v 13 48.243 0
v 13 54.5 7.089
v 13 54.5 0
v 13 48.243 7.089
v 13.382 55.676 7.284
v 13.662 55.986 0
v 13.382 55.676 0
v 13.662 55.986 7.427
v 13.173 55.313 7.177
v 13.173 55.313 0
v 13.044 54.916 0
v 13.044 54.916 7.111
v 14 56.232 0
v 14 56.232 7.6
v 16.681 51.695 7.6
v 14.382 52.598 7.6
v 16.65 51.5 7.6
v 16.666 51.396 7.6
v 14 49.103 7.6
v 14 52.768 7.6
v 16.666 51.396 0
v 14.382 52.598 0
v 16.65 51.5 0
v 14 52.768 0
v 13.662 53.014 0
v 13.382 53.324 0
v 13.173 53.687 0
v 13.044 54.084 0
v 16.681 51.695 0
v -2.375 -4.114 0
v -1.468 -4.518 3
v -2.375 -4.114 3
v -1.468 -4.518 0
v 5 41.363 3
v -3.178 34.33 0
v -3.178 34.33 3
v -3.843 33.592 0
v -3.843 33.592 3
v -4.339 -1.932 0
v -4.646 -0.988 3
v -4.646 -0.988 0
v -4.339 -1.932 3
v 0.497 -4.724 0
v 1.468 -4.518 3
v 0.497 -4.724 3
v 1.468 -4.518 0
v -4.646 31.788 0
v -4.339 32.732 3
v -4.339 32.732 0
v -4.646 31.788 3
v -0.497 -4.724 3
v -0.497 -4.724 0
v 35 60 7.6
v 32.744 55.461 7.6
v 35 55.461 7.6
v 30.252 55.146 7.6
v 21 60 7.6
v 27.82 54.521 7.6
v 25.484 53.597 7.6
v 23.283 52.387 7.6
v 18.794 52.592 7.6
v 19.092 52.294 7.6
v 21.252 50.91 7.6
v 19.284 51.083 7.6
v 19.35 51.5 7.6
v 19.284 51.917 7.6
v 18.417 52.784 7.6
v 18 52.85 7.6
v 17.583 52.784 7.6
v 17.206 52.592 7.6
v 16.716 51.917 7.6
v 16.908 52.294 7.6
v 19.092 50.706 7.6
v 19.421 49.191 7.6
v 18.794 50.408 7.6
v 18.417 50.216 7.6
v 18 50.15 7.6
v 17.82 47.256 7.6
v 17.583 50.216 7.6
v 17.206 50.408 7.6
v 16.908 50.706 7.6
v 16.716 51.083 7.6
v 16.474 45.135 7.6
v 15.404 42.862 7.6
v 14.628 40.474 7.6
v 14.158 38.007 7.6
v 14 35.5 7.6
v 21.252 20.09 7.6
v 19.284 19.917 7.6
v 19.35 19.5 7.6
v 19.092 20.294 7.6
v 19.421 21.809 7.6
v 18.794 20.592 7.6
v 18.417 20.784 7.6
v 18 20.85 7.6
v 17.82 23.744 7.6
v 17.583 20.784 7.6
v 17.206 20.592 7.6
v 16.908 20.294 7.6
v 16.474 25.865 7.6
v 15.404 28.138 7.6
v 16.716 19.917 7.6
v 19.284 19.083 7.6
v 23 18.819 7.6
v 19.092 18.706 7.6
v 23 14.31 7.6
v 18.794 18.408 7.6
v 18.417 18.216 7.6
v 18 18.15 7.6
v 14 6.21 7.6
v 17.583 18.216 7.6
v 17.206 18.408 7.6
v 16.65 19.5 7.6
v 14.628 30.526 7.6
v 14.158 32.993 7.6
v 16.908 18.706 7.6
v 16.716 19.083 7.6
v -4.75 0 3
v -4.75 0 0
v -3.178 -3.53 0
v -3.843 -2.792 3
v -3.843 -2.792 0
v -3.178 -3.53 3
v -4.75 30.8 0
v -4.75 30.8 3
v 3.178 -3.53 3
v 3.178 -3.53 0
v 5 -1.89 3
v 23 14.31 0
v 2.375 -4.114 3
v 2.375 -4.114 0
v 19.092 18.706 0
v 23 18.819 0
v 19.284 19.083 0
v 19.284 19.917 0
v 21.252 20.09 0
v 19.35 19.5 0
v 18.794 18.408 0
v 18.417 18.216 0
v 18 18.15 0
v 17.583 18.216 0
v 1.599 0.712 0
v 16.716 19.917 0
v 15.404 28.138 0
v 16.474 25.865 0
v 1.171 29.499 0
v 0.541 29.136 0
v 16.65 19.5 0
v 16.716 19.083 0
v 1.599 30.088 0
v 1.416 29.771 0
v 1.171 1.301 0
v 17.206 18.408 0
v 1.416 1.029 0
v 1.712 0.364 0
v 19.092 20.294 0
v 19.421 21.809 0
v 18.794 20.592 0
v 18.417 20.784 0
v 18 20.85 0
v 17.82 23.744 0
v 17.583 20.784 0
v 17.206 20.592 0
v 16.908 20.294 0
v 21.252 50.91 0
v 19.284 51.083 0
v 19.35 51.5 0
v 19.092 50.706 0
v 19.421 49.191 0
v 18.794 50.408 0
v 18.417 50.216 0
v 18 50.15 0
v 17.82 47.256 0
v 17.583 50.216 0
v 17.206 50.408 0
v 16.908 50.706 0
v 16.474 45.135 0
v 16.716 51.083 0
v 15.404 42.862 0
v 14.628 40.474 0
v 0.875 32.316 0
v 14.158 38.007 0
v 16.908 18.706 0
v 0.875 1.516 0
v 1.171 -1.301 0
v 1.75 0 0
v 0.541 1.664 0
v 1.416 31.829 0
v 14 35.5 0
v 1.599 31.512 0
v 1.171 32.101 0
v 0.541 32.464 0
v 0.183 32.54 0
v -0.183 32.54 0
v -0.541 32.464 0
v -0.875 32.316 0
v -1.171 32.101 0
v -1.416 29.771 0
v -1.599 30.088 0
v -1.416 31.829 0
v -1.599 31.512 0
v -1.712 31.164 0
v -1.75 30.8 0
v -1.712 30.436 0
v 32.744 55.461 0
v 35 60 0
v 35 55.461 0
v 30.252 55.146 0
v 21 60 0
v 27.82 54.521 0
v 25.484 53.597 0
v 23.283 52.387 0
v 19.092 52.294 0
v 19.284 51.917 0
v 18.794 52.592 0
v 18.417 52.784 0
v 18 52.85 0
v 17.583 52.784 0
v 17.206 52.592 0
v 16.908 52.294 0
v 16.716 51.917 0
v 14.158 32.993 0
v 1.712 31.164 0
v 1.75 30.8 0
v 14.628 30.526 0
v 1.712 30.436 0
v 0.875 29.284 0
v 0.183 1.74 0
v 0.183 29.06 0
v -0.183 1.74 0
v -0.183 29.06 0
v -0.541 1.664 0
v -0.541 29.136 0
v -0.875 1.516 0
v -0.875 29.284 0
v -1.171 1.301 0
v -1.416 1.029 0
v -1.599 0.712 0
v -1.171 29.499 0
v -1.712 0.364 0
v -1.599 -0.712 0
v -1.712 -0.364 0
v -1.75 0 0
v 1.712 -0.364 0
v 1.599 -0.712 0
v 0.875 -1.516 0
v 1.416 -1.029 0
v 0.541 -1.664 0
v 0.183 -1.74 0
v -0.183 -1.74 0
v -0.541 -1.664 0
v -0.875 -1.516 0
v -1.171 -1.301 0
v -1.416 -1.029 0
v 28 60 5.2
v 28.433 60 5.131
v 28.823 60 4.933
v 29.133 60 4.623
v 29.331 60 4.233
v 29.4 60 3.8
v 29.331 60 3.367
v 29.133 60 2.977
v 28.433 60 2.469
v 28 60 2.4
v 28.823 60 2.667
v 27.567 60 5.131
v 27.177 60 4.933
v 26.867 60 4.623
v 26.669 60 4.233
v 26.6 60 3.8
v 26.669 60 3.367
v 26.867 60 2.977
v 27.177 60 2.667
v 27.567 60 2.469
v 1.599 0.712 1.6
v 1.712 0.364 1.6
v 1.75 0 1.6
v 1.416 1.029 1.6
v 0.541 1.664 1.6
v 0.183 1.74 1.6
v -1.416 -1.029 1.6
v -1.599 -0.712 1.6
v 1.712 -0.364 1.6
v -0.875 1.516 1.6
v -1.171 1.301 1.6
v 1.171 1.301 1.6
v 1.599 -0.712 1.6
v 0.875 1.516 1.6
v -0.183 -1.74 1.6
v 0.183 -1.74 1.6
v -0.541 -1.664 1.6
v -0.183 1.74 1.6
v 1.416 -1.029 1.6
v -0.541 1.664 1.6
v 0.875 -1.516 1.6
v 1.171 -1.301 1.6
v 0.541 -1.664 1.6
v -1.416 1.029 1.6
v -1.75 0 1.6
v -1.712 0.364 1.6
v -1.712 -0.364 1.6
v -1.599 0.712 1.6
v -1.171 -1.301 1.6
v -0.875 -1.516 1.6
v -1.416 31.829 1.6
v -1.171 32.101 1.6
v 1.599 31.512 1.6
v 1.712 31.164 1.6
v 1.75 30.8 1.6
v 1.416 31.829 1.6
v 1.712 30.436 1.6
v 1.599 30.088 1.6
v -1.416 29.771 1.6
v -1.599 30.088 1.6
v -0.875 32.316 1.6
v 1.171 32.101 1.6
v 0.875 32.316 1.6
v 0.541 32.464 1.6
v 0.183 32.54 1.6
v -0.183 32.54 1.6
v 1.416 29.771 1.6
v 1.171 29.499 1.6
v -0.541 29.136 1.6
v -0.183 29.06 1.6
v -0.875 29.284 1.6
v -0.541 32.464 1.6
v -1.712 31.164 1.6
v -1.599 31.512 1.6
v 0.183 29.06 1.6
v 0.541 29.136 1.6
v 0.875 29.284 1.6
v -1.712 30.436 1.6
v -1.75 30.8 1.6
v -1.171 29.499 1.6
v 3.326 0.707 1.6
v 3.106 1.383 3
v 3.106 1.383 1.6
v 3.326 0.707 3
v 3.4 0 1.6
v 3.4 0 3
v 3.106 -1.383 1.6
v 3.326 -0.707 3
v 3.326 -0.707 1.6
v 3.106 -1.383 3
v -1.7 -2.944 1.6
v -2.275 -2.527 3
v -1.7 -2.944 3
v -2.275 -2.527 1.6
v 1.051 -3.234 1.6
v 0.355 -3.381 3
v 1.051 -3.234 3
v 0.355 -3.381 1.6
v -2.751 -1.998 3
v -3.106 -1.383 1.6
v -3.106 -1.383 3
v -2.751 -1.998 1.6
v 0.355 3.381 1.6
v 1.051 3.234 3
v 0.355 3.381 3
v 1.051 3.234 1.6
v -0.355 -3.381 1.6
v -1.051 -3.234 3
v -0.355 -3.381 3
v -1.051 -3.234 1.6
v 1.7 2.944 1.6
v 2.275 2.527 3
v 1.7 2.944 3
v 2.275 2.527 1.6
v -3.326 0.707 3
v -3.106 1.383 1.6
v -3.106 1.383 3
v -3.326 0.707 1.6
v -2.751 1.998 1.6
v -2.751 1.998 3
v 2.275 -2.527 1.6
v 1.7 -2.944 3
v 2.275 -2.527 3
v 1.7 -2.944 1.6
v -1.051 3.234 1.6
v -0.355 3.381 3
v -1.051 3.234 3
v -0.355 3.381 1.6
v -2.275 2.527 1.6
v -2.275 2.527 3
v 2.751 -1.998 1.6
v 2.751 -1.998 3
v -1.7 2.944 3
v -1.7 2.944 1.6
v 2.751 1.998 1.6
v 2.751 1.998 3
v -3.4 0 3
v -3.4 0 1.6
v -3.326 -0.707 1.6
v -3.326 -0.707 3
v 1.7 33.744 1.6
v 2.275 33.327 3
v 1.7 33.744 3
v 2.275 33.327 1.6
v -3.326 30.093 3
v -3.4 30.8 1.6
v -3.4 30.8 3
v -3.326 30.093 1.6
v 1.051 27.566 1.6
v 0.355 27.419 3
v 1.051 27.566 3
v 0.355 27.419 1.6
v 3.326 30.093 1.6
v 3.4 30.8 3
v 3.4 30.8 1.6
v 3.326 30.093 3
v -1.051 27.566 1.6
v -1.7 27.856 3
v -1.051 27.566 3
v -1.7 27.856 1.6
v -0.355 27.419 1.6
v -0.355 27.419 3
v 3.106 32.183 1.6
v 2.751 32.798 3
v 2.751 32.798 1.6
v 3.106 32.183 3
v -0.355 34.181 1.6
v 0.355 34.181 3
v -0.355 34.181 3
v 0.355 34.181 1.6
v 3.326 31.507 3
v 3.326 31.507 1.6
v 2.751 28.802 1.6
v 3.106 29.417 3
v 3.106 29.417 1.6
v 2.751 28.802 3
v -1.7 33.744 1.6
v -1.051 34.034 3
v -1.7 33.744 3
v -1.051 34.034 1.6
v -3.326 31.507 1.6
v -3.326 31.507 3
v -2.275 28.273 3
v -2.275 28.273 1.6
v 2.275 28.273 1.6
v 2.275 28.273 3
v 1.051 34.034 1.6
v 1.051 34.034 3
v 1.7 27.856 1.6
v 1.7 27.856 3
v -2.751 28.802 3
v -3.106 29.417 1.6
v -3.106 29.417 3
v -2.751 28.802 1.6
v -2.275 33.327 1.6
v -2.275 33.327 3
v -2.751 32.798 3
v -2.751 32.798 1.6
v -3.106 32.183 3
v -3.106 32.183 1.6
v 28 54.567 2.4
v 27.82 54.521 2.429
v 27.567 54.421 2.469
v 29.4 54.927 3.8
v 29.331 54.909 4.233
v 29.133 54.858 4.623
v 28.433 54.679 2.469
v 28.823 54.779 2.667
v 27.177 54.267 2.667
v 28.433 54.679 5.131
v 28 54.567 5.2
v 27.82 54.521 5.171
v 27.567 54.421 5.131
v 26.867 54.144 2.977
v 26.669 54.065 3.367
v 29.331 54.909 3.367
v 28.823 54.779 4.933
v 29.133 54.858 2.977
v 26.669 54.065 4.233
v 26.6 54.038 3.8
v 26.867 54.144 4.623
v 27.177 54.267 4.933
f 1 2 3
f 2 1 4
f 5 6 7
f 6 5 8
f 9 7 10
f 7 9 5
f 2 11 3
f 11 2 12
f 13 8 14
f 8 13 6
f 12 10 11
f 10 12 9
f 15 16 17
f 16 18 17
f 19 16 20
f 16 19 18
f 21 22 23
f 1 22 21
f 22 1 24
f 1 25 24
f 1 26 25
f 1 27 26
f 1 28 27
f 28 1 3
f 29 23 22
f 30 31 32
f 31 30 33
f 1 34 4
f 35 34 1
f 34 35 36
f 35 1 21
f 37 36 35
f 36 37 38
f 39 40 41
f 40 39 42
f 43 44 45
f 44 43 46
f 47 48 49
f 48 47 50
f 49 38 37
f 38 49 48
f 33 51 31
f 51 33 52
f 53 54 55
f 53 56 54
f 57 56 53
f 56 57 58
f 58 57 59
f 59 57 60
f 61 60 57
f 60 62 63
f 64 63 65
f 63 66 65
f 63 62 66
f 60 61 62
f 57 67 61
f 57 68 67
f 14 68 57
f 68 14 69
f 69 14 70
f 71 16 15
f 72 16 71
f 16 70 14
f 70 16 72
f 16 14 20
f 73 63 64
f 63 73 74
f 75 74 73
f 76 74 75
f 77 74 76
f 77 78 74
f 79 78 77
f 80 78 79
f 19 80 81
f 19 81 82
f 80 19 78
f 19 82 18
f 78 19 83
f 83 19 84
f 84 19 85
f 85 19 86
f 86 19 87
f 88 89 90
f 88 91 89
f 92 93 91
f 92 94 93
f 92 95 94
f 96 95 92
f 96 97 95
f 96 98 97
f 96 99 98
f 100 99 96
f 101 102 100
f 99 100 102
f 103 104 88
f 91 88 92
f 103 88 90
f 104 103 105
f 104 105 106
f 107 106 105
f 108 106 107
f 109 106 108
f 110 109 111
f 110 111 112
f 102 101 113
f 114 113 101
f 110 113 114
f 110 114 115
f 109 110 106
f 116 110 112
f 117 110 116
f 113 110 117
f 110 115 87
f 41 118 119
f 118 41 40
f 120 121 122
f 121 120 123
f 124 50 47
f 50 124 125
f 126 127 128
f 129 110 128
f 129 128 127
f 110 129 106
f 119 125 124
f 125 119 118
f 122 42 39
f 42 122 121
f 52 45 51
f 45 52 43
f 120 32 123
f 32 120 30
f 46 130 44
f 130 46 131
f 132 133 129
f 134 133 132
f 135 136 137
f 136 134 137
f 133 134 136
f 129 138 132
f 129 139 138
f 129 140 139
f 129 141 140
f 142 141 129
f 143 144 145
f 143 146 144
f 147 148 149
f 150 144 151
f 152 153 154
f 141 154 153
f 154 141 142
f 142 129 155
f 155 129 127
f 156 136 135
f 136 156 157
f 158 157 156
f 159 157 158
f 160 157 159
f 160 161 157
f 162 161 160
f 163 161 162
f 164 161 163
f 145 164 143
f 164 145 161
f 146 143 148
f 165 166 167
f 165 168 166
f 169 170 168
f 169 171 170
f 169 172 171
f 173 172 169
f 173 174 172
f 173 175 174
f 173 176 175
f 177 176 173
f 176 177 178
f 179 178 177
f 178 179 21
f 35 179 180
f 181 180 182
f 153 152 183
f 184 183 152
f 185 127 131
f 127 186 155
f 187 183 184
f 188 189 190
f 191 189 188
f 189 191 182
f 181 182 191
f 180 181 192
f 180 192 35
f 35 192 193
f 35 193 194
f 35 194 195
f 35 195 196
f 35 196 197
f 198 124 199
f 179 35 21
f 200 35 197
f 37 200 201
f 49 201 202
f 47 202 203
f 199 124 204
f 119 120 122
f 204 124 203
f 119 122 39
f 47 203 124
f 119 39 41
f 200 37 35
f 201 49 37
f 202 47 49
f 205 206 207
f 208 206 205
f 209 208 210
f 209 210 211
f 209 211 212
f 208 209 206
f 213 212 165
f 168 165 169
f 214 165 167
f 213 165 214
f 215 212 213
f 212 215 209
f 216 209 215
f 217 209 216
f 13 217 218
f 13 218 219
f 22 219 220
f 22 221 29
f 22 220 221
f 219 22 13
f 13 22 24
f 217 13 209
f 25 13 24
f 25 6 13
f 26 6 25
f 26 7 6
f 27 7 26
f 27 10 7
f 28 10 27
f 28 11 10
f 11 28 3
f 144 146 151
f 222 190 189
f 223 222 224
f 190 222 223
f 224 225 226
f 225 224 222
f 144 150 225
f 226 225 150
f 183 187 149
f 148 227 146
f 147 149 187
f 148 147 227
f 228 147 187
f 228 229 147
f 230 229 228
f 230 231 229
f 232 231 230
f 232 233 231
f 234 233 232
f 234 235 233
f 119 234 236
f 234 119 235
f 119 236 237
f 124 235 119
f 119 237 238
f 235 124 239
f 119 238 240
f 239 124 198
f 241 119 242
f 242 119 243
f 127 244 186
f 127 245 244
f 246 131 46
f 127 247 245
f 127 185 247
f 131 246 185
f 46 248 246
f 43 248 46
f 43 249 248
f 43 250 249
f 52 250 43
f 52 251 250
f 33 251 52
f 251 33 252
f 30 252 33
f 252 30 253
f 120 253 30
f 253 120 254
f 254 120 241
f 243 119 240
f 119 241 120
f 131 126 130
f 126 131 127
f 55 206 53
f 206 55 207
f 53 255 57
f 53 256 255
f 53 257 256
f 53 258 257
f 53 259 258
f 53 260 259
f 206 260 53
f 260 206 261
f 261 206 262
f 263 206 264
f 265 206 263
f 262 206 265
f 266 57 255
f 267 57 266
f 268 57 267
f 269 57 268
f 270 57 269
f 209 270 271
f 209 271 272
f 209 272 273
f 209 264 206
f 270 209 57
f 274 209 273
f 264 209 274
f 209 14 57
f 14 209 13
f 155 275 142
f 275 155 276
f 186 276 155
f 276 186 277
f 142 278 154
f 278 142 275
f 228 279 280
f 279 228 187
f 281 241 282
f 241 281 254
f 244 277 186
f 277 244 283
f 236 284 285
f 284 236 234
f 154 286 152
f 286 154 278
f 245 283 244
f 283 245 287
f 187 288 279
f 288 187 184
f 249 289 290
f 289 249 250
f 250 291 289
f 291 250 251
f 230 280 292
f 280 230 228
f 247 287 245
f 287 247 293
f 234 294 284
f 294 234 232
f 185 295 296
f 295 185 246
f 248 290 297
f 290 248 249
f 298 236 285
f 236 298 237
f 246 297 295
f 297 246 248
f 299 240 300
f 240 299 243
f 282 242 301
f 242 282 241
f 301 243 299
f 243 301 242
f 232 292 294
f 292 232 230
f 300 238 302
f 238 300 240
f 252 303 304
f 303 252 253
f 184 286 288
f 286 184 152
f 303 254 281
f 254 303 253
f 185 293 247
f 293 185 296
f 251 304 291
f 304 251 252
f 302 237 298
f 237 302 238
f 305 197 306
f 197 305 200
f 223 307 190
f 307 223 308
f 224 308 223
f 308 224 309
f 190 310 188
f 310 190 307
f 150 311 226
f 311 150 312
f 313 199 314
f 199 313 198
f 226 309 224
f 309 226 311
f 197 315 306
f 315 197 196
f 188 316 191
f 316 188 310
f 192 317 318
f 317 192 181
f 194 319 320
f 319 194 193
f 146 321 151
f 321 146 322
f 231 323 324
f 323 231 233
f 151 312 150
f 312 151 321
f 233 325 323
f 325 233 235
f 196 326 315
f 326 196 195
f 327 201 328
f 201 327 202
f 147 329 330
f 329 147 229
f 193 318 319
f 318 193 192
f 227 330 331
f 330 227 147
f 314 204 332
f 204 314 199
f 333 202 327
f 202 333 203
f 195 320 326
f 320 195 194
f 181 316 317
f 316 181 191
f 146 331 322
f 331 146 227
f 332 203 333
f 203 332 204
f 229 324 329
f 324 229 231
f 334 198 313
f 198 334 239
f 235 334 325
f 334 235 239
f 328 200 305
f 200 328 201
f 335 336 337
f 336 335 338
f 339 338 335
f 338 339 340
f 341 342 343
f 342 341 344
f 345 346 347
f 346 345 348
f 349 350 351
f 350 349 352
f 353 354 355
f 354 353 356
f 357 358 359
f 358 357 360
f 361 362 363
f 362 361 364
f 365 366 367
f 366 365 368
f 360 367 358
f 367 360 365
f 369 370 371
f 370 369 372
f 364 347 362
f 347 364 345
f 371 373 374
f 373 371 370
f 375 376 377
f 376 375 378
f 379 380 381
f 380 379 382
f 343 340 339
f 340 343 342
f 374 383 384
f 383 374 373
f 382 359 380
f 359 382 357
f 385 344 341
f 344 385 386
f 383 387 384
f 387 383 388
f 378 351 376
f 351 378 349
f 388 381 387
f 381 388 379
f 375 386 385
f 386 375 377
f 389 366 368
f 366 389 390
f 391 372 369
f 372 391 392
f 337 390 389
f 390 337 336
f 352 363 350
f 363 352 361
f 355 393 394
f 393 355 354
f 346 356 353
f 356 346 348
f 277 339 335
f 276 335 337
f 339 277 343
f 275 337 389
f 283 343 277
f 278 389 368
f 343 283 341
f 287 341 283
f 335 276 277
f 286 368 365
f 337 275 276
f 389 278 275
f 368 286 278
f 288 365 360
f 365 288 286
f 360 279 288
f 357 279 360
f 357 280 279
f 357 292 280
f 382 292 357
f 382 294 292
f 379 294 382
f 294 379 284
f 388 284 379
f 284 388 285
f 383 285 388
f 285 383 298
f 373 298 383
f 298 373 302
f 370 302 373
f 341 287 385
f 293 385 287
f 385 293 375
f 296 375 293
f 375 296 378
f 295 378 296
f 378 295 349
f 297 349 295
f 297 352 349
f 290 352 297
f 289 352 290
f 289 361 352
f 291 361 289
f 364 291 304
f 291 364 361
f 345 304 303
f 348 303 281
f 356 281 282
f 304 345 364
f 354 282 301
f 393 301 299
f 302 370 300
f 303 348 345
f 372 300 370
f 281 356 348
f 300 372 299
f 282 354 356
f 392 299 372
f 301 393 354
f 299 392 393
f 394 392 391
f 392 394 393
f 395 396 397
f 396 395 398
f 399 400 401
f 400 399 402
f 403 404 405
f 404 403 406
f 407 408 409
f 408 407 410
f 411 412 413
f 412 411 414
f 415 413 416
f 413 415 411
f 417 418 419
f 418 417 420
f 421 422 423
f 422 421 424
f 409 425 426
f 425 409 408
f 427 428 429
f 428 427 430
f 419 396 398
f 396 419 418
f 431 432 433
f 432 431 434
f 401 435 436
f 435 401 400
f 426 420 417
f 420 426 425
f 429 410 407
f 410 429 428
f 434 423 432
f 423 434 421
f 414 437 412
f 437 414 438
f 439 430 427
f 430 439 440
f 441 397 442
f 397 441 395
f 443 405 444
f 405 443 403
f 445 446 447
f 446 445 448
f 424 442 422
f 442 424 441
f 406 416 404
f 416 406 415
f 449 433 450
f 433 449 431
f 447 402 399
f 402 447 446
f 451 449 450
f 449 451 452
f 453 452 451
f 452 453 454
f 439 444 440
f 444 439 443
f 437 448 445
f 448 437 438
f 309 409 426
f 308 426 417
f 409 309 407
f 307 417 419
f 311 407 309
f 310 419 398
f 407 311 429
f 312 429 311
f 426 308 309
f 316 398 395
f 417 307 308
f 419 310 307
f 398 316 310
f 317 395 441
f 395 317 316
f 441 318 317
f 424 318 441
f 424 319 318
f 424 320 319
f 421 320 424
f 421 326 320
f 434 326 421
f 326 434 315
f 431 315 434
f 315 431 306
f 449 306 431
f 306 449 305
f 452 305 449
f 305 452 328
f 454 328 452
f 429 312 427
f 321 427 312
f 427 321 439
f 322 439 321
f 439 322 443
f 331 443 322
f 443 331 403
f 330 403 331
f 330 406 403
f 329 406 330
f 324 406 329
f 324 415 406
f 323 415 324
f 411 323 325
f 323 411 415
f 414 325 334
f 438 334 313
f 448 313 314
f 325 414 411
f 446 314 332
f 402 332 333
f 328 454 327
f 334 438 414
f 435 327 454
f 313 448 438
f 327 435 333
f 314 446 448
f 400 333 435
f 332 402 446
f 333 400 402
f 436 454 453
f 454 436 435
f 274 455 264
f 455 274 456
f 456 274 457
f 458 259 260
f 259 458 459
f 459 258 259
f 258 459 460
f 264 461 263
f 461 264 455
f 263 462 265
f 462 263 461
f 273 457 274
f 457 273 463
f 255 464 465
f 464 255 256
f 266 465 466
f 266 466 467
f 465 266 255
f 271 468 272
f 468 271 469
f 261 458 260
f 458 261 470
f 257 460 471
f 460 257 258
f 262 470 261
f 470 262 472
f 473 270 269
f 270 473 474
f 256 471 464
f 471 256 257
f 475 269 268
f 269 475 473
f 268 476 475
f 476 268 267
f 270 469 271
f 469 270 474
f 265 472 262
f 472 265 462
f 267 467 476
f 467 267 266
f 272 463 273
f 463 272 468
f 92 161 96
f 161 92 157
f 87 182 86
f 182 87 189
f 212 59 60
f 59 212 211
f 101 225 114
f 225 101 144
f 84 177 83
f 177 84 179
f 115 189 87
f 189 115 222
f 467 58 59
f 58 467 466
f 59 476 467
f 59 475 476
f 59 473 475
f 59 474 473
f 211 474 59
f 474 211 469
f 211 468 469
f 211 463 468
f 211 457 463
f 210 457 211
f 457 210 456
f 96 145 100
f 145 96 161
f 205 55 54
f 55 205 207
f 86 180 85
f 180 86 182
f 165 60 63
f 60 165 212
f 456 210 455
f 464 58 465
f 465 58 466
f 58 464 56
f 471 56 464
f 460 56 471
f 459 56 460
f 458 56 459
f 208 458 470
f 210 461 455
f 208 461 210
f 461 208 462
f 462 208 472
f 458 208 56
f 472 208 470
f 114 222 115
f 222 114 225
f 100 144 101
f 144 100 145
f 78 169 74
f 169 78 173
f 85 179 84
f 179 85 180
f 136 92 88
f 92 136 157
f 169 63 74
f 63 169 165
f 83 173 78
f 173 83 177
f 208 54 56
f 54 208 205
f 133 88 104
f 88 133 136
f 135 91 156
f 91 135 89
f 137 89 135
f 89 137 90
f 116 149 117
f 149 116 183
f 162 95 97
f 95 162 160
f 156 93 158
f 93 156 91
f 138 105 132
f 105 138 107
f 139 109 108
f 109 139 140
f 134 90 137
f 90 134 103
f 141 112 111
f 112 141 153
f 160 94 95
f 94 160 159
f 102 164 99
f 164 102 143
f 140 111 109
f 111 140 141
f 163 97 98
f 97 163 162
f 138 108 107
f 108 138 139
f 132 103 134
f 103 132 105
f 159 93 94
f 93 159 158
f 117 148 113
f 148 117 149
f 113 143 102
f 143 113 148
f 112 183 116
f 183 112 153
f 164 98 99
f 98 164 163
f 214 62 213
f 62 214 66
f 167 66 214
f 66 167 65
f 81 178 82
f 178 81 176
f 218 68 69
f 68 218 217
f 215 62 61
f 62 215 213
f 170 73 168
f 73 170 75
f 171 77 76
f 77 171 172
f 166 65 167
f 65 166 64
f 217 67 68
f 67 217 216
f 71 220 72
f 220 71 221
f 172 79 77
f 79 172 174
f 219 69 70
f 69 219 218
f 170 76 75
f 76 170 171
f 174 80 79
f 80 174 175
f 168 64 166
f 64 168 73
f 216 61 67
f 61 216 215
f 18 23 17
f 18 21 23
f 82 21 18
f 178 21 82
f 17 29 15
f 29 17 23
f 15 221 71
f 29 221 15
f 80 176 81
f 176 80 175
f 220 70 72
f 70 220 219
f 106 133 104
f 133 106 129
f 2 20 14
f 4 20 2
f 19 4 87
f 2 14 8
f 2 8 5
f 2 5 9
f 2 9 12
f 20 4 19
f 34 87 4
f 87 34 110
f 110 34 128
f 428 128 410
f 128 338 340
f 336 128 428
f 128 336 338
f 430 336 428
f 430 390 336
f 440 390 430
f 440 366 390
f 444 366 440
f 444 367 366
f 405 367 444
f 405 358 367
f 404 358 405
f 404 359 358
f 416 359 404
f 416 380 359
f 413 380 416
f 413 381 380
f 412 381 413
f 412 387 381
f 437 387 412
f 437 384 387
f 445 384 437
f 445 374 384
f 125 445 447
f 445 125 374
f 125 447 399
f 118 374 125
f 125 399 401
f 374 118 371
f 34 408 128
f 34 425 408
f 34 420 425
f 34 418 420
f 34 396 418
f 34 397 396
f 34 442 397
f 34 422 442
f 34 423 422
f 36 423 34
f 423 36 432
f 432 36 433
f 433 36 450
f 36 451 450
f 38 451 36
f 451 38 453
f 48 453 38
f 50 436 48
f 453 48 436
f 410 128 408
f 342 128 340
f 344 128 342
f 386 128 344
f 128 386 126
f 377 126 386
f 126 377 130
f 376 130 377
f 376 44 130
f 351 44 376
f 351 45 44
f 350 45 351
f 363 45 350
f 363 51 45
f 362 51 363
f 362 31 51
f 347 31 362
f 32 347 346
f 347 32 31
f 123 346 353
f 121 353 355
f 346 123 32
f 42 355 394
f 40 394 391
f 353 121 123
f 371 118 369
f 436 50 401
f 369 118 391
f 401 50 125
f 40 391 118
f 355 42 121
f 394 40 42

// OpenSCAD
// file: ../Dollo/NEW_long_ties/globals.scad
/*
Most things in this file is represented as one millimeter, so keep that in mind while changing things.
Some of the setting are not mm but at variables that you can set, such as 2*x=2x and you are setting what x is.
I will try to specify when things are variables and not exact measurements.
*/

// printer slop
slop = 0.15;

obj_leg = 30;
leg_length = 5.5;
small_number = 0.001;
metal_core_rode_global = 5;


///////////////// number of holes /////////////////////
z_hole_number = 8;
other_holes = 8;

///////////////// Pins /////////////////////

//pins that poke out
ball_size = 10;
pin_height = 20;
pin_diameter = 6;


//holes
hole_ball_size = ball_size;
hole_pin_height = pin_height;
hole_pin_diameter = pin_diameter;

///////////////// Z THINGS /////////////////////

berring_slot_width = 7.5;
berring_slot_depth = 6.5;
metal_core_rode = 5;

///////////////// X THINGS /////////////////////

//male dove tails
male_dove_max_width=8;
male_dove_min_width=5;
male_dove_depth=5;
male_dove_height=obj_leg/2;

function scaled_male_dove_max_width() = male_dove_max_width - slop;
function scaled_male_dove_min_width() = male_dove_min_width - slop;
function scaled_male_dove_depth() = male_dove_depth - slop;

//female dove tails, this is found on the y mounts
girl_max_width=11;
girl_min_width=5;
girl_depth=5;
girl_height=obj_leg;


///////////////// Y THINGS /////////////////////
/*
The Y is so normal that all of those global variables at the top should change all of the setting in it, this section is set her incase there are variables set in the future development of this project.
*/

// stepper
motor_side_length = 43.2;
motor_bolt_hole_distance = 31;
motor_center_hole = 23;
motor_shaft_dia = 5;
motor_shaft_hole_dia = 5+2*slop;

// bolts etc.
bolt_hole_dia = 3+2*slop;
bolt_head_hole_dia = 5.8;

m4_bolt_hole_dia = 4+2*slop;
m4_bolt_head_hole_dia = 6.8+2*slop;


m3_nut_side = 5.65;
m3_nut_height = 2.3;
m4_nut_side = 6.85;
m4_nut_height = 3.1;

// threaded rod
lifter_rod_diam = 9.86;
hole_threaded_rod = lifter_rod_diam+2*slop;

// for the extensions
metal_rod_size = 9;
// file: common.scad
atx_psu_width = 150;
atx_psu_height = 86;

card_spacing = 20.32;

fan_connector_width = 6.1;
fan_connector_length = 7.9;

fan_92mm = 92;
fan_92mm_bolt_offset = 82.5/2;

module mock_mobo() {
    $fn=50;
    difference() {
        cube([304.8, 243.84, 2]);
        translate([6.35+281.94,10.16,0]) cylinder(d=4, h=3);
        translate([6.35+281.94,10.16+154.94,0]) cylinder(d=4, h=3);
        translate([6.35+281.94,10.16+227.33,0]) cylinder(d=4, h=3);

        translate([6.35+157.48+45.72,10,0]) cylinder(d=4, h=3);

        translate([6.35+157.48,10.16,0]) cylinder(d=4, h=3);
        translate([6.35+157.48,10.16+154.94,0]) cylinder(d=4, h=3);
        translate([6.35+157.48,10.16+227.33,0]) cylinder(d=4, h=3);

        translate([6.35,22.86,0]) cylinder(d=4, h=3);
        translate([6.35,10.16+154.94,0]) cylinder(d=4, h=3);
        translate([6.35,10.16+227.33,0]) cylinder(d=4, h=3);
    }
}

module mock_card() {
    $fn=50;
    cube([200, 2, 106.7]);
    translate([-12.3, -15.8+22-19.4, -18.8+119.2]) difference() {
        cube([12.3,19.4,1]);
        translate([6.3, 19.4-1-4.8/2,0]) hull() {
            cylinder(d=4.8,h=2, $fn=40);
            translate([0,5,0]) cylinder(d=4.8,h=2, $fn=40);
        }
    }
    difference() {
        translate([-1,-15.8, -18.8]) cube([1,22, 120.2]);
        translate([-1.3,-15.8, -18.8]) cube([2,(18.8-10.6)/2, 11.2]);
        translate([-1.3,-15.8+10.6+(18.8-10.6)/2, -18.8]) cube([2,(18.8-10.6)/2, 11.2]);
        translate([-1.3,-15.8+18.8, -18.8]) cube([2,5, 116.2]);
        translate([-1.3,-15.8, -18.8+116.2]) cube([2,22-18.8, 5]);
    }
    
}

module mock_mobo_card() {
    
    mock_mobo();
    translate([304.8-142,-1.2,18.8-10.4]) rotate([0,0,90]) mock_card();
    translate([304.8-142+card_spacing,-1.2,18.8-10.4]) rotate([0,0,90]) mock_card();
    translate([304.8-142+2*card_spacing,-1.2,18.8-10.4]) rotate([0,0,90]) mock_card();
    translate([304.8-142+3*card_spacing,-1.2,18.8-10.4]) rotate([0,0,90]) mock_card();
    translate([304.8-142+4*card_spacing,-1.2,18.8-10.4]) rotate([0,0,90]) mock_card();
    translate([304.8-142+5*card_spacing,-1.2,18.8-10.4]) rotate([0,0,90]) mock_card();
    translate([304.8-142+6*card_spacing,-1.2,18.8-10.4]) rotate([0,0,90]) mock_card();
}

module mock_ssd() {
    difference() {
        cube([70, 100, 7.1]);
        translate([9.4,0,6.5]) cube([41.4,7,1]);
        translate([10.4,0,0]) cube([39.4,7,2]);
    }
    translate([0,13.6,3]) rotate([0,-90,0]) cylinder(d=2.5, h=5, $fn=30);
    translate([0,100-9.2,3]) rotate([0,-90,0]) cylinder(d=2.5, h=5, $fn=30);

    translate([70+5,13.6,3]) rotate([0,-90,0]) cylinder(d=2.5, h=5, $fn=30);
    translate([70+5,100-9.2,3]) rotate([0,-90,0]) cylinder(d=2.5, h=5, $fn=30);

}


hd_width = 102;
hd_height = 26.1;

screw_dia = 3.6;

module mock_hd() {
    color("white") difference() {
        cube([hd_width,146,26]);
        translate([0,28.3,6.40]) rotate([0,90,0]) cylinder(d=screw_dia, h=5, $fn=30);
        translate([0,69.8,6.40]) rotate([0,90,0]) cylinder(d=screw_dia, h=5, $fn=30);
        translate([0,129.8,6.40]) rotate([0,90,0]) cylinder(d=screw_dia, h=5, $fn=30);

        translate([hd_width-5,28.3,6.40]) rotate([0,90,0]) cylinder(d=screw_dia, h=5, $fn=30);
        translate([hd_width-5,69.8,6.40]) rotate([0,90,0]) cylinder(d=screw_dia, h=5, $fn=30);
        translate([hd_width-5,129.8,6.40]) rotate([0,90,0]) cylinder(d=screw_dia, h=5, $fn=30);

    }
        
}

module minus_atx_psu_holes(hole=3.2) {
    difference() {
        children();
        translate([-138/2,0,6]) rotate([-90,0,0]) cylinder(d=hole, h=5, $fn=30);
        translate([138/2,0,6]) rotate([-90,0,0]) cylinder(d=hole, h=5, $fn=30);
        translate([138/2,0,6+64]) rotate([-90,0,0]) cylinder(d=hole, h=5, $fn=30);
        translate([-150/2+30,0,atx_psu_height-6]) rotate([-90,0,0]) cylinder(d=hole, h=5, $fn=30);
    }
}

module mock_atx_psu(holes=true, slop=0) {
    w = atx_psu_width+2*slop;
    h = atx_psu_height+2*slop;
    if (holes) {
        minus_atx_psu_holes() {
            translate([-w/2,0,0]) cube([w, 140, h]);
        }
    } else {
        translate([-w/2,0,0]) cube([w, 140, h]);
    }
}


module mock_fan_connector_male(slop=0.2) {
    
    module pin() {
        color("grey") cube([0.75,0.75,14.3],center=true);
    }
    
    w = fan_connector_width + slop;
    l = fan_connector_length + slop;
    
    pin_offset = (5.8-0.75)/2;
    union() {
        color("white") {
            translate([0,0,3.2/2]) cube([w, l,3.2], center=true);
            translate([-w/2+0.9/2,0,3.2+8.5/2]) cube([0.9,5,8.5],center=true);
            translate([-w/2+0.9+0.3/2,0,1.7/2+5.7]) cube([0.3,5,1.7],center=true);
        }
        
        translate([-w/2+2.4,0,14.3/2-3.6]) pin();
        translate([-w/2+2.4,pin_offset,14.3/2-3.6]) pin();
        translate([-w/2+2.4,-pin_offset,14.3/2-3.6]) pin();
    }
}


//mock_mobo();
//mock_card();
//mock_mobo_card();
//mock_ssd();
//mock_atx_psu();
//mock_fan_connector_male();
// main file
include <../Dollo/NEW_long_ties/include.scad>;
use <common.scad>;


//debug();
//mock_card();

sata_card_fan_mount();
//sata_card_fan_mount_clip();


module debug() {
    mock_card();

    translate([-39, -25.5, 1.6])
    sata_card_fan_mount();

    translate([-11, 33.6, 3.6])
    rotate([0, -90, 0])
    sata_card_fan_mount_clip();
}

module mock_card() {
    difference() {
        translate([0, 0, 1.6/2])
        cube([88, 69, 1.6], center=true);

        translate([-88/2, -69/2, 0])
        cube([88, 9.5, 20], center=true);

        translate([88/2, -69/2, 0])
        cube([46, 25.5, 20], center=true);

        // screws
        translate([-88/2 + 5, 69/2 - 29.2])
        cylinder(d=3, h=20, center=true, $fn=30);

        translate([-88/2 + 5, 69/2 - 60])
        cylinder(d=3, h=20, center=true, $fn=30);
    }

    // clock crystal
    color("grey")
    hull() {
        translate([-88/2 + 29 + 4/2, 69/2 - 42 - 4/2, 1.6])
        cylinder(d=4, h=4, $fn=30);
        
        translate([-88/2 + 29 + 4/2, 69/2 - 52 - 4/2, 1.6])
        cylinder(d=4, h=4, $fn=30);
    }

    // ic
    color("black")
    translate([-88/2 + 34 + 5/2, 69/2 - 12.2 - 5/2, 2/2 + 1.6])
    cube([5, 5, 2], center=true);

    // headers
    color("black")
    translate([88/2 - 10.5/2 - 22, 69/2 - 2.7/2 - 0.8])
    cube([10.5, 2.7, 10], center=true);

    // heatsink
    color("orange")
    translate([
        -88/2 + 20/2 + 37,
        -69/2 + 14.5/2 + 29,
        1.6 + 6.5/2
    ])
    cube([20, 14.5, 6.5], center=true);

    %translate([-5, 10, 10/2 + 1.6 + 7.6])
    mock_fan_40mm();
}


module sata_card_fan_mount_old() {
    difference() {
        cube([14, 47, 15], center=true);

        translate([14/2 - 9 -1.7/2, 4, 0])
        cube([1.7, 47, 40], center=true);

        translate([-14/2, 13, 0])
        cube([7, 47, 40], center=true);

        translate([0, 48/2, 15/2])
        cube([20, 10, 9], center=true);
        
        translate([12, 4, 40/2 - 15/2 + 3])
        rotate([0, 90, 0])
        cylinder(d=39, h=30, center=true, $fn=40);

        translate([2.5, 4 - 32/2, -15/2 + 7])
        rotate([0, 90, 0])
        cylinder(d=2.7, h=10, center=true, $fn=20);

        translate([2.5, 4 + 32/2, -15/2 + 7])
        rotate([0, 90, 0])
        cylinder(d=2.7, h=10, center=true, $fn=20);

        translate([3, 25, -15/2 - 1])
        rotate([45, 0, 0])
        cube([15, 10, 10], center=true);

        hull() {
            translate([-3 + 1/2, 10, -15/2 + 5/2])
            cube([1, 47, 5], center=true);

            translate([-3 + 5.5/2, 10, -15/2 - 0.1/2])
            cube([5.5, 47, 0.1], center=true);
        }

        hull() {
            translate([-3 + 1/2, 10, -15/2 + 5/2 + 9])
            cube([1, 47, 5], center=true);

            translate([-3 + 5.5/2, 10, -15/2 + 0.1/2 + 14])
            cube([5.5, 47, 0.1], center=true);
        }
    }

    %translate([14/2 + 10/2, 4, 40/2 - 15/2 + 3])
    rotate([0, 90, 0])
    mock_fan_40mm();
}

module sata_card_fan_mount() {
    difference() {
        union() {
            hull() {
                cylinder(d=9.5, h=7.6, $fn=30);

                translate([0, 30.8, 0])
                cylinder(d=9.5, h=7.6, $fn=30);

                translate([20, 18, 0])
                cylinder(d=9.5, h=7.6, $fn=30);

                translate([20, 48, 0])
                cylinder(d=9.5, h=7.6, $fn=30);
            }

            translate([34, 35.5, 7.6/2])
            rounded_cube_side(
                42, 42, 7.6, 4, center=true, $fn=30
            );

            hull() {
                translate([28, 55, 7.6/2])
                cube([14, 10, 7.6], center=true);

                translate([15, 54.5, 0])
                cylinder(d=4, h=7.6, $fn=30);

            }
        }

        // screw holes
        cylinder(d=3.5, h=10, center=true, $fn=30);

        translate([0, 30.8, 0])
        cylinder(d=3.5, h=10, center=true, $fn=30);

        translate([0, 0, 1.6])
        cylinder(d=6.8, h=10, $fn=30);

        translate([0, 30.8, 1.6])
        cylinder(d=6.8, h=10, $fn=30);

        translate([28, 55, 7.6/2])
        rotate([90, 0, 0])
        cylinder(d=2.8, h=20, center=true, $fn=20);

        // fan holes
        translate([34, 35.5, 0])
        cylinder(d=40, h=40, center=true, $fn=50);

        translate([18, 19.5, 0])
        cylinder(d=2.7, h=20, center=true, $fn=20);

        translate([18, 19.5 + 32, 0])
        cylinder(d=2.7, h=20, center=true, $fn=20);


        // extra stuf to remove
        translate([43, 10])
        cube([40, 40, 20], center=true);

        translate([55, 45])
        cube([40, 40, 20], center=true);

        hull() {
            translate([0, 0, 10/2 + 3])
            cube([10, 180, 10], center=true);

            translate([9, 0, 10/2 + 7.6])
            cube([10, 180, 10], center=true);

        }
    }
}

module sata_card_fan_mount_clip() {
    difference() {
        cube([11.2, 8, 10], center=true);

        translate([2, -3, 0])
        cube([11.2, 8, 12], center=true);

        translate([11.2/2 - 7.6/2, 0])
        rotate([-90, 0, 0])
        cylinder(d=3.2, h=10, $fn=30);

        translate([11.2/2 - 7.6/2, 8/2 - 1.6])
        rotate([-90, 0, 0])
        cylinder(d1=3.2, d2=6.6, h=1.7, $fn=30);
    }
}
